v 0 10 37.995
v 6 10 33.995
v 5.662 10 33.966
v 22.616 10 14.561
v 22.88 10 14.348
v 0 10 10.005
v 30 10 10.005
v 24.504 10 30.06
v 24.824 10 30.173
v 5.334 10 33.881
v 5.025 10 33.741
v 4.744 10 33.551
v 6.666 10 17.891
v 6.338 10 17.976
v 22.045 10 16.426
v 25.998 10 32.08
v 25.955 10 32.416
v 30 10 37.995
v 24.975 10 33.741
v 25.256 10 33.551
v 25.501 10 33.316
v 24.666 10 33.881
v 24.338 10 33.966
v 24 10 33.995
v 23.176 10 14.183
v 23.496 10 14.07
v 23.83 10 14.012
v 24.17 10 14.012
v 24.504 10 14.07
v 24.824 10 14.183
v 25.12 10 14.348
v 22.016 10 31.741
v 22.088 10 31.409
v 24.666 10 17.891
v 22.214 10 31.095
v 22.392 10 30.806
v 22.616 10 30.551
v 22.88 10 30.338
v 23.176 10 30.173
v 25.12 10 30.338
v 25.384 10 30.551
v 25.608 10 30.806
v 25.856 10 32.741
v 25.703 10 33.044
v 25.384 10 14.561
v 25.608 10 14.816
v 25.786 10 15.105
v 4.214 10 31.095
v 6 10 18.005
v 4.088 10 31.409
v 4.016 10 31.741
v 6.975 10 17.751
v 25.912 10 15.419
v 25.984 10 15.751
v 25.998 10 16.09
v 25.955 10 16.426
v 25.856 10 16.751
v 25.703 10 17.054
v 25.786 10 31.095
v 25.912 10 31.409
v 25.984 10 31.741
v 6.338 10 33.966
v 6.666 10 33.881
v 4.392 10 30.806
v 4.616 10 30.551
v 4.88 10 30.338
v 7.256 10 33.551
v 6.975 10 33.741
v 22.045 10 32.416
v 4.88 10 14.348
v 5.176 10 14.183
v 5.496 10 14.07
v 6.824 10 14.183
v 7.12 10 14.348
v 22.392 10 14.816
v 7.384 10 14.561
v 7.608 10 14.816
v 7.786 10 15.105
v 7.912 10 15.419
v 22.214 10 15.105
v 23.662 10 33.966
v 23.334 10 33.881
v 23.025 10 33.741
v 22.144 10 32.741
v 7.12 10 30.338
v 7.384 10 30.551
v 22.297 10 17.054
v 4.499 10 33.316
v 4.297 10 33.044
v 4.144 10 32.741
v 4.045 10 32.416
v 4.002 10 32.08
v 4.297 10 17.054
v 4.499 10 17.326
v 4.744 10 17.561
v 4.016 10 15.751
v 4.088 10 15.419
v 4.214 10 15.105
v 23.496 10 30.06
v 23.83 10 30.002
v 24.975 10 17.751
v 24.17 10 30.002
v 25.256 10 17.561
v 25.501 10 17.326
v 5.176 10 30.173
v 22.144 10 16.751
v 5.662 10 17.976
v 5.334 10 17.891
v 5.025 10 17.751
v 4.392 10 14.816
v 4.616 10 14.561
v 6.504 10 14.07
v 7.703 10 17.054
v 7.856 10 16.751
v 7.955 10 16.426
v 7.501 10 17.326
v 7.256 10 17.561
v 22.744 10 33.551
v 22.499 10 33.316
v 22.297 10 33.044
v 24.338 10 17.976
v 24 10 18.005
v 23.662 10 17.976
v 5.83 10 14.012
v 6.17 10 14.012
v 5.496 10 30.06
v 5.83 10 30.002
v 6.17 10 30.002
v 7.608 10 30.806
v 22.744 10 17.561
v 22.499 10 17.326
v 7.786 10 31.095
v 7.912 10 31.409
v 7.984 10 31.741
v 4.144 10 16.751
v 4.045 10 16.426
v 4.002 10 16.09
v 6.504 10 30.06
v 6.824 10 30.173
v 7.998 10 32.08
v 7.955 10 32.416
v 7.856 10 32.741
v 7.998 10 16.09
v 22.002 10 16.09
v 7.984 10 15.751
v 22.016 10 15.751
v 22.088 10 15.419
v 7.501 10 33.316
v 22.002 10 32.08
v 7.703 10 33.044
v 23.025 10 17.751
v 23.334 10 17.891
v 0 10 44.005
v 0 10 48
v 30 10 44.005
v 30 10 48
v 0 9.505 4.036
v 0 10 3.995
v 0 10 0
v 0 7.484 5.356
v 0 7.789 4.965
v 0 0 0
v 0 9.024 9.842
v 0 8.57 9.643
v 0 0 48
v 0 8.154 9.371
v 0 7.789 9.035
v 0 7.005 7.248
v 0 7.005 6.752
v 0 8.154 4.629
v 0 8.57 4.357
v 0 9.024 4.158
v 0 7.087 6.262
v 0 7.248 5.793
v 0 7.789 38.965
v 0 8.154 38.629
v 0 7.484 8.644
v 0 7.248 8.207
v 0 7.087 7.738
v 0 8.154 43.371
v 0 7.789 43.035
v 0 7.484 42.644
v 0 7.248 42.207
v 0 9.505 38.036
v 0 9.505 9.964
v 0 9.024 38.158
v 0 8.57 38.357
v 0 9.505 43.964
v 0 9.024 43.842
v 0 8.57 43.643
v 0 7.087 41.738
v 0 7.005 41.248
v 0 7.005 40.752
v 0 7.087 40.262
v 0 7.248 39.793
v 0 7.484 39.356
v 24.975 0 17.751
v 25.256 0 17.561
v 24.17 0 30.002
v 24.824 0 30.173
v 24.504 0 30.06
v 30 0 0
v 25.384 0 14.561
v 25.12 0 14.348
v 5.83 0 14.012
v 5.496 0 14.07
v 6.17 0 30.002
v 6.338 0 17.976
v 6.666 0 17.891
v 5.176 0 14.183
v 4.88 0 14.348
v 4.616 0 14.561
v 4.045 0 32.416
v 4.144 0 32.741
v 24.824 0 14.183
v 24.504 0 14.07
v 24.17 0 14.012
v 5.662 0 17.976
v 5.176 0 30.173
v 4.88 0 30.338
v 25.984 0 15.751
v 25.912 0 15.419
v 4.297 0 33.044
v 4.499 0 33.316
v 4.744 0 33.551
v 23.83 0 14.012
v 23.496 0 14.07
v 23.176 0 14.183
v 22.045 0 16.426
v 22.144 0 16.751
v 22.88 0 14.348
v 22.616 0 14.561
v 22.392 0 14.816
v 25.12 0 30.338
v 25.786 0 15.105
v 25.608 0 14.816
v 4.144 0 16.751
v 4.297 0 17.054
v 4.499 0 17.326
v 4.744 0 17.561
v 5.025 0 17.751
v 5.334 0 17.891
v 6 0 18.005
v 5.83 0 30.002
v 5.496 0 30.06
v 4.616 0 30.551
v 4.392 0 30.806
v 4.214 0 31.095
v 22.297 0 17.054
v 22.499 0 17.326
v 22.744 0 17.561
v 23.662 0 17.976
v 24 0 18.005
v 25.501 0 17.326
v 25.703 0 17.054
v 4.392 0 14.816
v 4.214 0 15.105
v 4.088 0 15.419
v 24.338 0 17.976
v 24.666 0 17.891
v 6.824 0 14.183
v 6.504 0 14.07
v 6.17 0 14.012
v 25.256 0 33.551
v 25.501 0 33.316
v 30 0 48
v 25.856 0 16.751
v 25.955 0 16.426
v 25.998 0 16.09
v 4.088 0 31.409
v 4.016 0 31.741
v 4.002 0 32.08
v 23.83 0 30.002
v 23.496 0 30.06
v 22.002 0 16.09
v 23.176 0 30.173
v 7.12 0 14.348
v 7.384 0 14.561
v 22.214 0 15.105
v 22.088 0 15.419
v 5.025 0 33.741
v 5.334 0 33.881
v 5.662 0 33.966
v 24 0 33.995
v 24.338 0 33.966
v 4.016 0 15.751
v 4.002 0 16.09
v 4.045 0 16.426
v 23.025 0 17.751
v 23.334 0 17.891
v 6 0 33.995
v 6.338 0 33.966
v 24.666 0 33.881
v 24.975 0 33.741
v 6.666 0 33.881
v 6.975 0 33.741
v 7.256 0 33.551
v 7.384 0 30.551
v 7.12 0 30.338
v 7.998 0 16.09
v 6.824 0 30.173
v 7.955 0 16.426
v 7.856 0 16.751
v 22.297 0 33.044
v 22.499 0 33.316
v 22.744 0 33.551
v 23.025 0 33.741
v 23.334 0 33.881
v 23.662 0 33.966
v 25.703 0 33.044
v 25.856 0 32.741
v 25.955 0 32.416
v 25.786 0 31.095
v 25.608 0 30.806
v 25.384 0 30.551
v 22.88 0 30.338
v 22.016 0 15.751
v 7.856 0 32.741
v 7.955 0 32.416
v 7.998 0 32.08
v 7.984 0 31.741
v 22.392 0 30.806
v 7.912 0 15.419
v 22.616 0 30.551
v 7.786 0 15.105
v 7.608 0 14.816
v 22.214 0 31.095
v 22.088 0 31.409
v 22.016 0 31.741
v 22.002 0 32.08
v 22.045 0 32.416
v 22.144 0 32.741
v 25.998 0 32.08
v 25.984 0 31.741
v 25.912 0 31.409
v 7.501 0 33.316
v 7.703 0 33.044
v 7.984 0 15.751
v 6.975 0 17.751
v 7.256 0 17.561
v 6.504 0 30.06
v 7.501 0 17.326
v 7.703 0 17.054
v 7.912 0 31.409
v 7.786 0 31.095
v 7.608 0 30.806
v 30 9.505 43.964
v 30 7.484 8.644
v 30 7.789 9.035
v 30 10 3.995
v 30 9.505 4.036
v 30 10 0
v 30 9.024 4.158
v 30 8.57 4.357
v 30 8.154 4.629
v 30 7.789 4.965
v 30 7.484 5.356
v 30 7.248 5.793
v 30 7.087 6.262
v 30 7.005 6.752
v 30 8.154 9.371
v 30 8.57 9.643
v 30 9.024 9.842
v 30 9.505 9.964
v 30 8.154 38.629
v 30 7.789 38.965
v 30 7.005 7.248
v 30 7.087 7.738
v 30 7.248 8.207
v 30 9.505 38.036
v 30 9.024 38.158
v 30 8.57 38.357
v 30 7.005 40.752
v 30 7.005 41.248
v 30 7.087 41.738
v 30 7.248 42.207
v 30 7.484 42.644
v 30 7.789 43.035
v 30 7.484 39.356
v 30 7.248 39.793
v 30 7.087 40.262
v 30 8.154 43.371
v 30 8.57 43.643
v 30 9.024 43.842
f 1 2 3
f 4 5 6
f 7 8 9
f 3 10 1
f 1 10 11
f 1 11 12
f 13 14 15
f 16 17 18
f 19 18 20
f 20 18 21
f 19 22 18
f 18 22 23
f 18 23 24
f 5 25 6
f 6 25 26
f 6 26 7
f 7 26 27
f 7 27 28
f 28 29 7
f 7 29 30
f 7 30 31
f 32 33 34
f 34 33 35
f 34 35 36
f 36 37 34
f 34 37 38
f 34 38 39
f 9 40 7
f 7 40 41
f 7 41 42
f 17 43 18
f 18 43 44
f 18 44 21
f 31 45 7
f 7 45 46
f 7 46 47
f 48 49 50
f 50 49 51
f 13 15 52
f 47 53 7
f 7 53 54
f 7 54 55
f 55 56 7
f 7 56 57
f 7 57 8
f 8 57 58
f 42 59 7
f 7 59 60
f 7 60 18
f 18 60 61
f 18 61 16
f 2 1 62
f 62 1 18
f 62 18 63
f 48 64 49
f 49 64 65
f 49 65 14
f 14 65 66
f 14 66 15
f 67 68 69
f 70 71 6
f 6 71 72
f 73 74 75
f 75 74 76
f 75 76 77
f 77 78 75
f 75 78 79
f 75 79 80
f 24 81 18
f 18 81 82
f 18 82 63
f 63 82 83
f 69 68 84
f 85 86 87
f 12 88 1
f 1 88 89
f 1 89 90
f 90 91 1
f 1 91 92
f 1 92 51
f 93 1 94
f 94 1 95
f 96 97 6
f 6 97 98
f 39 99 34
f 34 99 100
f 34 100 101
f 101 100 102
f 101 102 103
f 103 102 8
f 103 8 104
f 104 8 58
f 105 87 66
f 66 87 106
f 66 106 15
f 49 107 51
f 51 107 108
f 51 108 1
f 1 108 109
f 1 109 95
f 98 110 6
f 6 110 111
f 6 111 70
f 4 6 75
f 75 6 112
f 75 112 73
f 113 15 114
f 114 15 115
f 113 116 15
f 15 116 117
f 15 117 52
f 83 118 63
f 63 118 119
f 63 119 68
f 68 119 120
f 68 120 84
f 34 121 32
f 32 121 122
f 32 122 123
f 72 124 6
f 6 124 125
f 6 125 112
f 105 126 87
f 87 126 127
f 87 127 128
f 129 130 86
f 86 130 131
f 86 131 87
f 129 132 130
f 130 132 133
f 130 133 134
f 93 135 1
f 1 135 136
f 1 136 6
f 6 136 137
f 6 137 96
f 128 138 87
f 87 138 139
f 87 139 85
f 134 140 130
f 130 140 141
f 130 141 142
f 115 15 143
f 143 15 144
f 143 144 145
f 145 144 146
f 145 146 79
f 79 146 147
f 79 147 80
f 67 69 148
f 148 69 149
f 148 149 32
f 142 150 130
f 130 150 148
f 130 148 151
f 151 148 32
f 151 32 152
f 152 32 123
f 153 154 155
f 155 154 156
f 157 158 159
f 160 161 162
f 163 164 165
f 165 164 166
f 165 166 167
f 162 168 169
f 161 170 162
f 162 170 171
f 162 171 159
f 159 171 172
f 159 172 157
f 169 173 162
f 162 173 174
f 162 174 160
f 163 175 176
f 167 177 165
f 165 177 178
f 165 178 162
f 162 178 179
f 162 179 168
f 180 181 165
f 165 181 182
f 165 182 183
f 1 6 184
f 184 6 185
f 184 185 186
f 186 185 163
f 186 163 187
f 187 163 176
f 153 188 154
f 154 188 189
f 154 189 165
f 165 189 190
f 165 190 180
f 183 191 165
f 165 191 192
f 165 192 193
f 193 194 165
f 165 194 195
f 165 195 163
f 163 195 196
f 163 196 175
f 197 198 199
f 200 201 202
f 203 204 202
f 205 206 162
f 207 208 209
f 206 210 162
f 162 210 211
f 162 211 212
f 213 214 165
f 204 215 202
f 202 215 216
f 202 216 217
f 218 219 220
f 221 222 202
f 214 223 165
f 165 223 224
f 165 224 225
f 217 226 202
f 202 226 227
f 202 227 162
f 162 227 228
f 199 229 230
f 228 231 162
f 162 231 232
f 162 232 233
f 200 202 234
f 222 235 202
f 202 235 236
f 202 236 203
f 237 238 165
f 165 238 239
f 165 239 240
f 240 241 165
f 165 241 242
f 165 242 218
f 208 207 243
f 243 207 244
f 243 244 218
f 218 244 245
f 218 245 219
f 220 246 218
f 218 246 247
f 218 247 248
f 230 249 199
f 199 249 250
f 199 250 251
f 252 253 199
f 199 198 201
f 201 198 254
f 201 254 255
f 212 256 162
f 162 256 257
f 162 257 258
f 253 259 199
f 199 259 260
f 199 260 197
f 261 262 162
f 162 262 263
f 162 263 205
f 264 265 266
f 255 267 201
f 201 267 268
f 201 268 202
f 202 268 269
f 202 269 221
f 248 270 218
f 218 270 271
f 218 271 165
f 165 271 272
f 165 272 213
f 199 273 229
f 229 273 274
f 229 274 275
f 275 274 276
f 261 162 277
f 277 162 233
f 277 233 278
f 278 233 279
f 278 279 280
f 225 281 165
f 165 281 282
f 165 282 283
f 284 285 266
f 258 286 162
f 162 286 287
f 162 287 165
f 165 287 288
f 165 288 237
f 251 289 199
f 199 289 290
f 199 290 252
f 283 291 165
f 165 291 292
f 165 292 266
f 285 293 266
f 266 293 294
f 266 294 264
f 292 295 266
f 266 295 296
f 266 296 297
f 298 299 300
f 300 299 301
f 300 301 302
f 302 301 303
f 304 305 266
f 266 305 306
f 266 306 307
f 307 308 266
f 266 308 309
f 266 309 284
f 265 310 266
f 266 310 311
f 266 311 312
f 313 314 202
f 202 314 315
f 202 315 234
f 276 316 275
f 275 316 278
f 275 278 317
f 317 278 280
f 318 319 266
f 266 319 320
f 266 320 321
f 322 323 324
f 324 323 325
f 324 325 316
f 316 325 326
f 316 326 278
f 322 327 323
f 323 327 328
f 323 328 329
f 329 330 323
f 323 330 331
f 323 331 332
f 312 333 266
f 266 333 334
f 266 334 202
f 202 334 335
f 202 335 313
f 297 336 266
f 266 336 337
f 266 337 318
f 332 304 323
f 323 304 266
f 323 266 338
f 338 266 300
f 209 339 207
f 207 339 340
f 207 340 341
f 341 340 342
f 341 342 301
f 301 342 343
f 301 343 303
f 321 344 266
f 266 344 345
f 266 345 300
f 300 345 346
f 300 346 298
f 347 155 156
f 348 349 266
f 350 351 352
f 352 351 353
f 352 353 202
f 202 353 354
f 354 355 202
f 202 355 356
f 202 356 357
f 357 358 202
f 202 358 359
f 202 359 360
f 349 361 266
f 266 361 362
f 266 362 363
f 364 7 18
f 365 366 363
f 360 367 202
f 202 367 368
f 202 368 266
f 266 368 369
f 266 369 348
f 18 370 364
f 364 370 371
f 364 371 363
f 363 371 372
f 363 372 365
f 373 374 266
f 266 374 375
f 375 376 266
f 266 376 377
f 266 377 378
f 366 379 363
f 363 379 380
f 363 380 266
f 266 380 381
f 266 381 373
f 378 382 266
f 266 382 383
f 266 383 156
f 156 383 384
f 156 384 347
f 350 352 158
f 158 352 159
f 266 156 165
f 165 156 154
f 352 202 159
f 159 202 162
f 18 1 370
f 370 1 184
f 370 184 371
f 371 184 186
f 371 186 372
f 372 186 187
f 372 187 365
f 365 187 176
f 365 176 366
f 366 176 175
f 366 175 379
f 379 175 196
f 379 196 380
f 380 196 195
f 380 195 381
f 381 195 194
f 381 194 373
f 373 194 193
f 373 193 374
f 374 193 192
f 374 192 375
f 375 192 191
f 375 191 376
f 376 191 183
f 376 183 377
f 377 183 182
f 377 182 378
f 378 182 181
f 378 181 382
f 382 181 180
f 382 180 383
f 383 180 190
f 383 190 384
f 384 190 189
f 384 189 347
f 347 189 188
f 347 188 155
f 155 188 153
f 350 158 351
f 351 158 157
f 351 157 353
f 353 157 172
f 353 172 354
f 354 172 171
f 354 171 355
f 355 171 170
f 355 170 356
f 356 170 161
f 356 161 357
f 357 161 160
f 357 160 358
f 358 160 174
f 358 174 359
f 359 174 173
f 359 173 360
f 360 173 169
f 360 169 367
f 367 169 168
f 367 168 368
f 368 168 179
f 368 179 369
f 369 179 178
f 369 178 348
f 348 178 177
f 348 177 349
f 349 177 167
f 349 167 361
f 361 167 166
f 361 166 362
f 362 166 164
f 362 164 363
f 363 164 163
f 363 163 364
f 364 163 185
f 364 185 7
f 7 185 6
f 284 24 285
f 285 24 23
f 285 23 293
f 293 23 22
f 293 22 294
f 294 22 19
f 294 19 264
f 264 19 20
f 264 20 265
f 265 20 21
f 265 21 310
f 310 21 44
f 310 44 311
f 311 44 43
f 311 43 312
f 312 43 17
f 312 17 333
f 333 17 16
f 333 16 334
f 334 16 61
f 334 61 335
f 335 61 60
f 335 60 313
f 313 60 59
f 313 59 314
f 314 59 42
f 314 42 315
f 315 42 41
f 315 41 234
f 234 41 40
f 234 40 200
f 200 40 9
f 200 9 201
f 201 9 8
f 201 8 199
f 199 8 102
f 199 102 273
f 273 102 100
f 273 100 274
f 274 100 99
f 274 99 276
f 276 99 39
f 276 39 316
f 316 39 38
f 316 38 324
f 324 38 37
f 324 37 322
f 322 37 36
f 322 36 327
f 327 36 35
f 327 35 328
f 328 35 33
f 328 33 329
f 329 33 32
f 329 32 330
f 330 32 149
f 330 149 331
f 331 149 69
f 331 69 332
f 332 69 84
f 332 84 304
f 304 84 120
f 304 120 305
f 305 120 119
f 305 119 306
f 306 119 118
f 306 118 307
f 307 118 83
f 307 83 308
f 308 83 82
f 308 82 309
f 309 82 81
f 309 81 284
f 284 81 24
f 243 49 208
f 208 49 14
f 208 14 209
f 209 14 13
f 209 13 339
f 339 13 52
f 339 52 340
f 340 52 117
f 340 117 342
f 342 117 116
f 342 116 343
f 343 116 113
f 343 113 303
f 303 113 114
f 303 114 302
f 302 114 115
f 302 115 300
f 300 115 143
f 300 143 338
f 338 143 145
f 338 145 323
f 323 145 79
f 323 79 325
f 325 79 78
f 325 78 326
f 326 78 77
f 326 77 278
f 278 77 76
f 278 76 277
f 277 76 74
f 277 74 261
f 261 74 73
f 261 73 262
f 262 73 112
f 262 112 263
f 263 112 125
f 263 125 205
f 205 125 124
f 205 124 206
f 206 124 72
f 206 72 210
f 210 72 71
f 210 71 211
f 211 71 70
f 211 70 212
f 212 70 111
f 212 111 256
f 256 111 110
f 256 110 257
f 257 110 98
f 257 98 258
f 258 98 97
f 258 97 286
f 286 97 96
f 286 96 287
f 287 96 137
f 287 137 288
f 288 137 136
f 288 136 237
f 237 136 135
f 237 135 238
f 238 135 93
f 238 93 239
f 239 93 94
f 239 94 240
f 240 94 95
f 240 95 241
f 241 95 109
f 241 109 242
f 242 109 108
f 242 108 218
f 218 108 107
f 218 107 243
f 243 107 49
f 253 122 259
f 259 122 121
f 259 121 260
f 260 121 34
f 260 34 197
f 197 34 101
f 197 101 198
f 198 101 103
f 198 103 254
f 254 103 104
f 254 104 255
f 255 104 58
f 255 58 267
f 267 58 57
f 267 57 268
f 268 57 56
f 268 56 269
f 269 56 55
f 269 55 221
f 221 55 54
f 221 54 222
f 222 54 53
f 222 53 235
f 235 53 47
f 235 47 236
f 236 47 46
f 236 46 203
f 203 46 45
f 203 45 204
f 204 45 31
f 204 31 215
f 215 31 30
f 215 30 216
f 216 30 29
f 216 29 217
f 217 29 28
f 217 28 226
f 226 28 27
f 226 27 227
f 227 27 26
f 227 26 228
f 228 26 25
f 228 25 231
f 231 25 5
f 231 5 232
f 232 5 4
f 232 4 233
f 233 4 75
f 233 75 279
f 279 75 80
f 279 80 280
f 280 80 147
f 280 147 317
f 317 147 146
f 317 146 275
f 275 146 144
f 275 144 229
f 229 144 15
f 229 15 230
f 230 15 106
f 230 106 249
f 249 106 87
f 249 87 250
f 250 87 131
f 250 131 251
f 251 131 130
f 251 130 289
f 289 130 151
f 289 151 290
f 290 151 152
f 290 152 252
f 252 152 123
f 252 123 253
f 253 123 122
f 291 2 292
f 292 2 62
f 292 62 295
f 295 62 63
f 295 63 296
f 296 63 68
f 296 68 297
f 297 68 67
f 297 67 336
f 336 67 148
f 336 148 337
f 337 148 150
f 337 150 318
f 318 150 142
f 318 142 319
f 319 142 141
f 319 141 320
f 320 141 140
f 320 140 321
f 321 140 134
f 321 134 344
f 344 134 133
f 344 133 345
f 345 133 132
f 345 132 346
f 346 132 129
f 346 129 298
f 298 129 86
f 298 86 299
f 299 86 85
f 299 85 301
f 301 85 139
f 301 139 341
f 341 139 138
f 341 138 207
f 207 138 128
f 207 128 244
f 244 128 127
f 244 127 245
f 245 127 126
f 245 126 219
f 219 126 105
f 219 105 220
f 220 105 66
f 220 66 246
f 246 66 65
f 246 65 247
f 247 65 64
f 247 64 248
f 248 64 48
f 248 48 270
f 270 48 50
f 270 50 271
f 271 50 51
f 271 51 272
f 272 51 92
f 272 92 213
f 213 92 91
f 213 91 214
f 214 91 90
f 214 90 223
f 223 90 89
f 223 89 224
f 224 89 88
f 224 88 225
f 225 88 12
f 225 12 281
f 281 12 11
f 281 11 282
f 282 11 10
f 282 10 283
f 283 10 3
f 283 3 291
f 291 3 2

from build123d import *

# Parameters (mm, degrees)
SKETCH_1_W          = 30
SKETCH_1_H          = 10
EXTRUDE_1_DEPTH     = 48
SKETCH_3_R          = 3.005
CUT_EXTRUDE_1_DEPTH = 48
SKETCH_4_R          = 2
CUT_EXTRUDE_2_DEPTH = 58.480431453


with BuildPart() as part:
    # 草图1 → 凸台-拉伸1 (new body)
    with BuildSketch(Plane.XY):
        with Locations((15, 5)):
            Rectangle(SKETCH_1_W, SKETCH_1_H)
    extrude(amount=EXTRUDE_1_DEPTH)

    # 草图3 → 切除-拉伸1 (cut)
    with BuildSketch(Plane.ZY):
        with Locations((7, 10)):
            Circle(SKETCH_3_R)
        with Locations((41, 10)):
            Circle(SKETCH_3_R)
    extrude(amount=-CUT_EXTRUDE_1_DEPTH, mode=Mode.SUBTRACT)

    # 草图4 → 切除-拉伸2 (cut, through all)
    with BuildSketch(Plane(origin=(0, 10, 0), x_dir=(1, 0, 0), z_dir=(0, 1, 0))):
        with Locations(Location((24, -31.995, 0), (0, 0, 270))):
            Circle(SKETCH_4_R)
        with Locations(Location((6, -31.995, 0), (0, 0, 270))):
            Circle(SKETCH_4_R)
        with Locations(Location((24, -16.005, 0), (0, 0, 270))):
            Circle(SKETCH_4_R)
        with Locations(Location((6, -16.005, 0), (0, 0, 270))):
            Circle(SKETCH_4_R)
    extrude(amount=-CUT_EXTRUDE_2_DEPTH, mode=Mode.SUBTRACT)


solid = part.part
